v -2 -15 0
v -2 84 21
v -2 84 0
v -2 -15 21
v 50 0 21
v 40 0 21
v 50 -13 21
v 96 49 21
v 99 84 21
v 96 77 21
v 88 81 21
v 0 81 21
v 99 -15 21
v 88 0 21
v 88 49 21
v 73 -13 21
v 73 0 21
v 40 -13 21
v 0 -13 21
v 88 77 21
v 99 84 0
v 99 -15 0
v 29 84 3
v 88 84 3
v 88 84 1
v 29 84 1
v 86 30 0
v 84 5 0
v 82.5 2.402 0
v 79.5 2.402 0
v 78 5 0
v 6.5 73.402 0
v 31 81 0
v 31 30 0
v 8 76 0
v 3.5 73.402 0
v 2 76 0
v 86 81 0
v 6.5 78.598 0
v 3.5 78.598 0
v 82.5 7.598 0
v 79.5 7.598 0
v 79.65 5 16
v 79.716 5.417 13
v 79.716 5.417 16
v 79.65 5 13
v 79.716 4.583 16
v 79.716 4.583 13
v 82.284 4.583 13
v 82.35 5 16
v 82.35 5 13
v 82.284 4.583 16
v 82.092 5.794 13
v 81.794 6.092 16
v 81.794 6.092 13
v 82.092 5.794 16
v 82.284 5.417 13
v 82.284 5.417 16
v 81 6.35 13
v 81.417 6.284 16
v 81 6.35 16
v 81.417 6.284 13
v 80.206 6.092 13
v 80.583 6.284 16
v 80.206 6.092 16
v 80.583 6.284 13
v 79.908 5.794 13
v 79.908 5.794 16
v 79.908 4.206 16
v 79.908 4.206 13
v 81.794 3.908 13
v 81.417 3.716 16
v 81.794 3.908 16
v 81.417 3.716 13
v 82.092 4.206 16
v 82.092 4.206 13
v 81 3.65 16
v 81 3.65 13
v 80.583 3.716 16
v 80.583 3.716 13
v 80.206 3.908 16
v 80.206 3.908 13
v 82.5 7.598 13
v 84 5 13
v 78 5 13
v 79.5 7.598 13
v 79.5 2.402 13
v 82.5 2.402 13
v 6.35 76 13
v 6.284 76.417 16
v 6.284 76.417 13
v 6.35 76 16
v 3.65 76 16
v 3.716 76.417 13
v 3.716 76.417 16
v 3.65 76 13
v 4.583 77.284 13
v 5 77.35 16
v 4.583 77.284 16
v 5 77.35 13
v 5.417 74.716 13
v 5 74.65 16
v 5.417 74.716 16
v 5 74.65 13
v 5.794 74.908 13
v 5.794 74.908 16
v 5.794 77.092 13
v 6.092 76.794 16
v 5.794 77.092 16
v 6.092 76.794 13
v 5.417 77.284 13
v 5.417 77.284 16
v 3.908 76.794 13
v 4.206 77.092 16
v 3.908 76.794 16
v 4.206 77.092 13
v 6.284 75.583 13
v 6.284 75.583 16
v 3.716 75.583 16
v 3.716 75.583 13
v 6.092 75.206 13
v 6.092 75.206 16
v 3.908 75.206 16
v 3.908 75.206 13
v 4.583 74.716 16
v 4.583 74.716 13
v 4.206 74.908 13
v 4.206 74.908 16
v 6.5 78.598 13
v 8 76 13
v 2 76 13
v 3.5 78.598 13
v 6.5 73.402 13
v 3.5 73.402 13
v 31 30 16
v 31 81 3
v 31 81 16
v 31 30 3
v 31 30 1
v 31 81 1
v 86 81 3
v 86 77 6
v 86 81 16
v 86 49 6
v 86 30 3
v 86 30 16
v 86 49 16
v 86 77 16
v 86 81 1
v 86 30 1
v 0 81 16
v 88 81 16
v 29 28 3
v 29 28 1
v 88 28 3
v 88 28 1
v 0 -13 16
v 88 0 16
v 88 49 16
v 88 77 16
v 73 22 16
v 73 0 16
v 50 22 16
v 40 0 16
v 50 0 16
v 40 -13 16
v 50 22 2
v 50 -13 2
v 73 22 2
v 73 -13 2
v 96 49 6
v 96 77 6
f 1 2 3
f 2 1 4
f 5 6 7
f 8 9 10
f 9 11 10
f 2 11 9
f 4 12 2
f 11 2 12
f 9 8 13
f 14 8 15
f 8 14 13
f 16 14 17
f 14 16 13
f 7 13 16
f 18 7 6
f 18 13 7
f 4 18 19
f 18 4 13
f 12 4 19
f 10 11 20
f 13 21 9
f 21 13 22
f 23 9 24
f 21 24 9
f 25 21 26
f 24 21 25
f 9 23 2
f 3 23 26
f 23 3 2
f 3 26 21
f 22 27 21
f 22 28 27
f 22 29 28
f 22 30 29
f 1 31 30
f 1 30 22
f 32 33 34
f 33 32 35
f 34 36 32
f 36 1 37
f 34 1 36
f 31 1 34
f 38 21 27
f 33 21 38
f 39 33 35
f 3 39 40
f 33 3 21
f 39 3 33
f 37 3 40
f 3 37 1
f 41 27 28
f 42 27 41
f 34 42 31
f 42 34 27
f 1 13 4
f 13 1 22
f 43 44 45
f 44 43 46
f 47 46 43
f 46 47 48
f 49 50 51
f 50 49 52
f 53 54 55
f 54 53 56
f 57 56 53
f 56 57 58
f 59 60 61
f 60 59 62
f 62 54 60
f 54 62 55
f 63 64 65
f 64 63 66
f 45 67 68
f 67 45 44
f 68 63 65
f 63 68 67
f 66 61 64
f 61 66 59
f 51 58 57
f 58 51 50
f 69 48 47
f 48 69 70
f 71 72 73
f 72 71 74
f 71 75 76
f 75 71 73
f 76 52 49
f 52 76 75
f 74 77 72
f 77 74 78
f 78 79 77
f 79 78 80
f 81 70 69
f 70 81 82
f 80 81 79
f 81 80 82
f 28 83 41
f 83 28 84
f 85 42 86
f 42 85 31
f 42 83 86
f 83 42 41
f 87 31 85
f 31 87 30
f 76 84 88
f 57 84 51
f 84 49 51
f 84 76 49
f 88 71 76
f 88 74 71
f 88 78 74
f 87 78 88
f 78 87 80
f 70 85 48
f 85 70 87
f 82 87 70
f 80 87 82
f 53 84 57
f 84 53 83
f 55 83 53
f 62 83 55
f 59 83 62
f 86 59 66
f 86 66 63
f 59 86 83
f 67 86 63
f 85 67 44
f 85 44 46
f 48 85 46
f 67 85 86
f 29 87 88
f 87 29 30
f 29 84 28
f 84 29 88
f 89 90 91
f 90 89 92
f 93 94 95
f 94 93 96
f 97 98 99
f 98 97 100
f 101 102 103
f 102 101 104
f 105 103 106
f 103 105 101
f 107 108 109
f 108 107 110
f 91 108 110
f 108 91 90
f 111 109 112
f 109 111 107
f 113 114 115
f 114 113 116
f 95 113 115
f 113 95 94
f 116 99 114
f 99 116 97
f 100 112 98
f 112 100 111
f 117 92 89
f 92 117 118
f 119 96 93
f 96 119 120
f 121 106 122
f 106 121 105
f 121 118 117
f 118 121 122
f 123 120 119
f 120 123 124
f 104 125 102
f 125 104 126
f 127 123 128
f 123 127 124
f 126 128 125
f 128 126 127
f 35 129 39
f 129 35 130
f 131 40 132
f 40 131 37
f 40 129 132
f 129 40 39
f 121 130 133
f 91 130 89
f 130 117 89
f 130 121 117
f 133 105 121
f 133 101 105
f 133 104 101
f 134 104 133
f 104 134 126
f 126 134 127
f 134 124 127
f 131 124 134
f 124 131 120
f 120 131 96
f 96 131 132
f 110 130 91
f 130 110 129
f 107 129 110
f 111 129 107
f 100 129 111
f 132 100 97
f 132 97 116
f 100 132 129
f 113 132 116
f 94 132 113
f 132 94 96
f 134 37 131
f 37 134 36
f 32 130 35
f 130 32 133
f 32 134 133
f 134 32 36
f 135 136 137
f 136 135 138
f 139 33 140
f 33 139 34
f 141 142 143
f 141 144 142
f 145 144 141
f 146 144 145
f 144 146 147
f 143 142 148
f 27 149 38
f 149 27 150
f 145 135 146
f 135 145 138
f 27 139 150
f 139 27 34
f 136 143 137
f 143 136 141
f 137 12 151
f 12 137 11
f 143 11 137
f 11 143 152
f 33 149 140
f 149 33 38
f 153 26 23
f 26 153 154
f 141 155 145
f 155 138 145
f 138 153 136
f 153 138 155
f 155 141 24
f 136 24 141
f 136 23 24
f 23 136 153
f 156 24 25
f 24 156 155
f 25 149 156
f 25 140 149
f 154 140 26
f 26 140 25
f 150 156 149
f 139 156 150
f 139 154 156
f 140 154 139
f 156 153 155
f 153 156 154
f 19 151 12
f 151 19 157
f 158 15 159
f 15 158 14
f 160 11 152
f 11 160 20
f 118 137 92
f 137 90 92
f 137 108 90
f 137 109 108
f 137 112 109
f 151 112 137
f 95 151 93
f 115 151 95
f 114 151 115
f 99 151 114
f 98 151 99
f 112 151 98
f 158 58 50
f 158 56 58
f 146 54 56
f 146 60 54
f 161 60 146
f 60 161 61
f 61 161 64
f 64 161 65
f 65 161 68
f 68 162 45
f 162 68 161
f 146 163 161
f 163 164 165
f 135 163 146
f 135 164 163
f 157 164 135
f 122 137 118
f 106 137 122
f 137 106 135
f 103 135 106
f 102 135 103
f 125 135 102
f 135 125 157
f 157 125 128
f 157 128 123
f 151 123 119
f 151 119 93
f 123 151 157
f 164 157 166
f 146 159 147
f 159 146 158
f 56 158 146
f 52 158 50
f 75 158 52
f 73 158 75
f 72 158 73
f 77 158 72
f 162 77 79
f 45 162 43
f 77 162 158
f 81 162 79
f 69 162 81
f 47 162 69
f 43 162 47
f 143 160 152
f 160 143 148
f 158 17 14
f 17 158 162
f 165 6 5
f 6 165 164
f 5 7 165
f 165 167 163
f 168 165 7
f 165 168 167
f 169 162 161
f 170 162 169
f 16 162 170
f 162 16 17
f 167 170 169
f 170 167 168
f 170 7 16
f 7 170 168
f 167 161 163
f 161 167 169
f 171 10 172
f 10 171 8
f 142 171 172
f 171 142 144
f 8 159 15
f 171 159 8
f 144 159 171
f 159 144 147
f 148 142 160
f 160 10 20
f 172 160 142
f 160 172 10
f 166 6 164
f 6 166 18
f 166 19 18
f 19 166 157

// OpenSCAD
/*translate([-70, 0, 0]) {
    cube([57, 56, 1]);
}*/

module box() {
    translate([0,0,16]) {
        difference() {
            translate([-2, -15, -16]) {
                cube([101, 99, 21]);
                
                translate([0, 0, 40]) {
                    cube([101, 99, 24]);
                }
            }
            
            translate([15, 15, 20]) {
                cube([74, 54, 40]);
            }
            translate([12.5, 10, 20]) {
                cube([80, 65, 24]);
            }
            
            translate([16.5, 13, 20]) {
                cylinder(40, d = 3, $fn = 20);
            }
            translate([16.5, 71, 20]) {
                cylinder(40, d = 3, $fn = 20);
            }
            translate([87.5, 13, 20]) {
                cylinder(40, d = 3, $fn = 20);
            }
            translate([87.5, 71, 20]) {
                cylinder(40, d = 3, $fn = 20);
            }
            
            translate([81,5,-17]) {
                cylinder(100, d = 2.7, $fn = 20);
                cylinder(14, d = 6, $fn = 6);
            }
            translate([5,76,-17]) {
                cylinder(100, d = 2.7, $fn = 20);
                cylinder(14, d = 6, $fn = 6);
            }

            cube([88, 81, 10]);
            translate([31,30,-17]) {
                cube([55,51,18]);
                translate([-2,-2,2]) {
                    cube([59, 58, 2]);
                }
            }
            translate([50,-13,-14]) {
                cube([23,35,25]);
            }
            translate([80,49,-10]) {
                cube([16,28,20]);
            }
            translate([0, -13, 0]) {
                cube([40, 20, 20]);
            }
        }
    }
}

intersection() {
    box();
    translate([-50, -50, 0]) {
        cube([200, 200, 30]);
    }
}

/*rotate([180, 0, 0]) {
    translate([150, -80, -64]) {
        intersection() {
            box();
            translate([-50, -50, 25]) {
                cube([200, 200, 60]);
            }
        }
    }
}*/
